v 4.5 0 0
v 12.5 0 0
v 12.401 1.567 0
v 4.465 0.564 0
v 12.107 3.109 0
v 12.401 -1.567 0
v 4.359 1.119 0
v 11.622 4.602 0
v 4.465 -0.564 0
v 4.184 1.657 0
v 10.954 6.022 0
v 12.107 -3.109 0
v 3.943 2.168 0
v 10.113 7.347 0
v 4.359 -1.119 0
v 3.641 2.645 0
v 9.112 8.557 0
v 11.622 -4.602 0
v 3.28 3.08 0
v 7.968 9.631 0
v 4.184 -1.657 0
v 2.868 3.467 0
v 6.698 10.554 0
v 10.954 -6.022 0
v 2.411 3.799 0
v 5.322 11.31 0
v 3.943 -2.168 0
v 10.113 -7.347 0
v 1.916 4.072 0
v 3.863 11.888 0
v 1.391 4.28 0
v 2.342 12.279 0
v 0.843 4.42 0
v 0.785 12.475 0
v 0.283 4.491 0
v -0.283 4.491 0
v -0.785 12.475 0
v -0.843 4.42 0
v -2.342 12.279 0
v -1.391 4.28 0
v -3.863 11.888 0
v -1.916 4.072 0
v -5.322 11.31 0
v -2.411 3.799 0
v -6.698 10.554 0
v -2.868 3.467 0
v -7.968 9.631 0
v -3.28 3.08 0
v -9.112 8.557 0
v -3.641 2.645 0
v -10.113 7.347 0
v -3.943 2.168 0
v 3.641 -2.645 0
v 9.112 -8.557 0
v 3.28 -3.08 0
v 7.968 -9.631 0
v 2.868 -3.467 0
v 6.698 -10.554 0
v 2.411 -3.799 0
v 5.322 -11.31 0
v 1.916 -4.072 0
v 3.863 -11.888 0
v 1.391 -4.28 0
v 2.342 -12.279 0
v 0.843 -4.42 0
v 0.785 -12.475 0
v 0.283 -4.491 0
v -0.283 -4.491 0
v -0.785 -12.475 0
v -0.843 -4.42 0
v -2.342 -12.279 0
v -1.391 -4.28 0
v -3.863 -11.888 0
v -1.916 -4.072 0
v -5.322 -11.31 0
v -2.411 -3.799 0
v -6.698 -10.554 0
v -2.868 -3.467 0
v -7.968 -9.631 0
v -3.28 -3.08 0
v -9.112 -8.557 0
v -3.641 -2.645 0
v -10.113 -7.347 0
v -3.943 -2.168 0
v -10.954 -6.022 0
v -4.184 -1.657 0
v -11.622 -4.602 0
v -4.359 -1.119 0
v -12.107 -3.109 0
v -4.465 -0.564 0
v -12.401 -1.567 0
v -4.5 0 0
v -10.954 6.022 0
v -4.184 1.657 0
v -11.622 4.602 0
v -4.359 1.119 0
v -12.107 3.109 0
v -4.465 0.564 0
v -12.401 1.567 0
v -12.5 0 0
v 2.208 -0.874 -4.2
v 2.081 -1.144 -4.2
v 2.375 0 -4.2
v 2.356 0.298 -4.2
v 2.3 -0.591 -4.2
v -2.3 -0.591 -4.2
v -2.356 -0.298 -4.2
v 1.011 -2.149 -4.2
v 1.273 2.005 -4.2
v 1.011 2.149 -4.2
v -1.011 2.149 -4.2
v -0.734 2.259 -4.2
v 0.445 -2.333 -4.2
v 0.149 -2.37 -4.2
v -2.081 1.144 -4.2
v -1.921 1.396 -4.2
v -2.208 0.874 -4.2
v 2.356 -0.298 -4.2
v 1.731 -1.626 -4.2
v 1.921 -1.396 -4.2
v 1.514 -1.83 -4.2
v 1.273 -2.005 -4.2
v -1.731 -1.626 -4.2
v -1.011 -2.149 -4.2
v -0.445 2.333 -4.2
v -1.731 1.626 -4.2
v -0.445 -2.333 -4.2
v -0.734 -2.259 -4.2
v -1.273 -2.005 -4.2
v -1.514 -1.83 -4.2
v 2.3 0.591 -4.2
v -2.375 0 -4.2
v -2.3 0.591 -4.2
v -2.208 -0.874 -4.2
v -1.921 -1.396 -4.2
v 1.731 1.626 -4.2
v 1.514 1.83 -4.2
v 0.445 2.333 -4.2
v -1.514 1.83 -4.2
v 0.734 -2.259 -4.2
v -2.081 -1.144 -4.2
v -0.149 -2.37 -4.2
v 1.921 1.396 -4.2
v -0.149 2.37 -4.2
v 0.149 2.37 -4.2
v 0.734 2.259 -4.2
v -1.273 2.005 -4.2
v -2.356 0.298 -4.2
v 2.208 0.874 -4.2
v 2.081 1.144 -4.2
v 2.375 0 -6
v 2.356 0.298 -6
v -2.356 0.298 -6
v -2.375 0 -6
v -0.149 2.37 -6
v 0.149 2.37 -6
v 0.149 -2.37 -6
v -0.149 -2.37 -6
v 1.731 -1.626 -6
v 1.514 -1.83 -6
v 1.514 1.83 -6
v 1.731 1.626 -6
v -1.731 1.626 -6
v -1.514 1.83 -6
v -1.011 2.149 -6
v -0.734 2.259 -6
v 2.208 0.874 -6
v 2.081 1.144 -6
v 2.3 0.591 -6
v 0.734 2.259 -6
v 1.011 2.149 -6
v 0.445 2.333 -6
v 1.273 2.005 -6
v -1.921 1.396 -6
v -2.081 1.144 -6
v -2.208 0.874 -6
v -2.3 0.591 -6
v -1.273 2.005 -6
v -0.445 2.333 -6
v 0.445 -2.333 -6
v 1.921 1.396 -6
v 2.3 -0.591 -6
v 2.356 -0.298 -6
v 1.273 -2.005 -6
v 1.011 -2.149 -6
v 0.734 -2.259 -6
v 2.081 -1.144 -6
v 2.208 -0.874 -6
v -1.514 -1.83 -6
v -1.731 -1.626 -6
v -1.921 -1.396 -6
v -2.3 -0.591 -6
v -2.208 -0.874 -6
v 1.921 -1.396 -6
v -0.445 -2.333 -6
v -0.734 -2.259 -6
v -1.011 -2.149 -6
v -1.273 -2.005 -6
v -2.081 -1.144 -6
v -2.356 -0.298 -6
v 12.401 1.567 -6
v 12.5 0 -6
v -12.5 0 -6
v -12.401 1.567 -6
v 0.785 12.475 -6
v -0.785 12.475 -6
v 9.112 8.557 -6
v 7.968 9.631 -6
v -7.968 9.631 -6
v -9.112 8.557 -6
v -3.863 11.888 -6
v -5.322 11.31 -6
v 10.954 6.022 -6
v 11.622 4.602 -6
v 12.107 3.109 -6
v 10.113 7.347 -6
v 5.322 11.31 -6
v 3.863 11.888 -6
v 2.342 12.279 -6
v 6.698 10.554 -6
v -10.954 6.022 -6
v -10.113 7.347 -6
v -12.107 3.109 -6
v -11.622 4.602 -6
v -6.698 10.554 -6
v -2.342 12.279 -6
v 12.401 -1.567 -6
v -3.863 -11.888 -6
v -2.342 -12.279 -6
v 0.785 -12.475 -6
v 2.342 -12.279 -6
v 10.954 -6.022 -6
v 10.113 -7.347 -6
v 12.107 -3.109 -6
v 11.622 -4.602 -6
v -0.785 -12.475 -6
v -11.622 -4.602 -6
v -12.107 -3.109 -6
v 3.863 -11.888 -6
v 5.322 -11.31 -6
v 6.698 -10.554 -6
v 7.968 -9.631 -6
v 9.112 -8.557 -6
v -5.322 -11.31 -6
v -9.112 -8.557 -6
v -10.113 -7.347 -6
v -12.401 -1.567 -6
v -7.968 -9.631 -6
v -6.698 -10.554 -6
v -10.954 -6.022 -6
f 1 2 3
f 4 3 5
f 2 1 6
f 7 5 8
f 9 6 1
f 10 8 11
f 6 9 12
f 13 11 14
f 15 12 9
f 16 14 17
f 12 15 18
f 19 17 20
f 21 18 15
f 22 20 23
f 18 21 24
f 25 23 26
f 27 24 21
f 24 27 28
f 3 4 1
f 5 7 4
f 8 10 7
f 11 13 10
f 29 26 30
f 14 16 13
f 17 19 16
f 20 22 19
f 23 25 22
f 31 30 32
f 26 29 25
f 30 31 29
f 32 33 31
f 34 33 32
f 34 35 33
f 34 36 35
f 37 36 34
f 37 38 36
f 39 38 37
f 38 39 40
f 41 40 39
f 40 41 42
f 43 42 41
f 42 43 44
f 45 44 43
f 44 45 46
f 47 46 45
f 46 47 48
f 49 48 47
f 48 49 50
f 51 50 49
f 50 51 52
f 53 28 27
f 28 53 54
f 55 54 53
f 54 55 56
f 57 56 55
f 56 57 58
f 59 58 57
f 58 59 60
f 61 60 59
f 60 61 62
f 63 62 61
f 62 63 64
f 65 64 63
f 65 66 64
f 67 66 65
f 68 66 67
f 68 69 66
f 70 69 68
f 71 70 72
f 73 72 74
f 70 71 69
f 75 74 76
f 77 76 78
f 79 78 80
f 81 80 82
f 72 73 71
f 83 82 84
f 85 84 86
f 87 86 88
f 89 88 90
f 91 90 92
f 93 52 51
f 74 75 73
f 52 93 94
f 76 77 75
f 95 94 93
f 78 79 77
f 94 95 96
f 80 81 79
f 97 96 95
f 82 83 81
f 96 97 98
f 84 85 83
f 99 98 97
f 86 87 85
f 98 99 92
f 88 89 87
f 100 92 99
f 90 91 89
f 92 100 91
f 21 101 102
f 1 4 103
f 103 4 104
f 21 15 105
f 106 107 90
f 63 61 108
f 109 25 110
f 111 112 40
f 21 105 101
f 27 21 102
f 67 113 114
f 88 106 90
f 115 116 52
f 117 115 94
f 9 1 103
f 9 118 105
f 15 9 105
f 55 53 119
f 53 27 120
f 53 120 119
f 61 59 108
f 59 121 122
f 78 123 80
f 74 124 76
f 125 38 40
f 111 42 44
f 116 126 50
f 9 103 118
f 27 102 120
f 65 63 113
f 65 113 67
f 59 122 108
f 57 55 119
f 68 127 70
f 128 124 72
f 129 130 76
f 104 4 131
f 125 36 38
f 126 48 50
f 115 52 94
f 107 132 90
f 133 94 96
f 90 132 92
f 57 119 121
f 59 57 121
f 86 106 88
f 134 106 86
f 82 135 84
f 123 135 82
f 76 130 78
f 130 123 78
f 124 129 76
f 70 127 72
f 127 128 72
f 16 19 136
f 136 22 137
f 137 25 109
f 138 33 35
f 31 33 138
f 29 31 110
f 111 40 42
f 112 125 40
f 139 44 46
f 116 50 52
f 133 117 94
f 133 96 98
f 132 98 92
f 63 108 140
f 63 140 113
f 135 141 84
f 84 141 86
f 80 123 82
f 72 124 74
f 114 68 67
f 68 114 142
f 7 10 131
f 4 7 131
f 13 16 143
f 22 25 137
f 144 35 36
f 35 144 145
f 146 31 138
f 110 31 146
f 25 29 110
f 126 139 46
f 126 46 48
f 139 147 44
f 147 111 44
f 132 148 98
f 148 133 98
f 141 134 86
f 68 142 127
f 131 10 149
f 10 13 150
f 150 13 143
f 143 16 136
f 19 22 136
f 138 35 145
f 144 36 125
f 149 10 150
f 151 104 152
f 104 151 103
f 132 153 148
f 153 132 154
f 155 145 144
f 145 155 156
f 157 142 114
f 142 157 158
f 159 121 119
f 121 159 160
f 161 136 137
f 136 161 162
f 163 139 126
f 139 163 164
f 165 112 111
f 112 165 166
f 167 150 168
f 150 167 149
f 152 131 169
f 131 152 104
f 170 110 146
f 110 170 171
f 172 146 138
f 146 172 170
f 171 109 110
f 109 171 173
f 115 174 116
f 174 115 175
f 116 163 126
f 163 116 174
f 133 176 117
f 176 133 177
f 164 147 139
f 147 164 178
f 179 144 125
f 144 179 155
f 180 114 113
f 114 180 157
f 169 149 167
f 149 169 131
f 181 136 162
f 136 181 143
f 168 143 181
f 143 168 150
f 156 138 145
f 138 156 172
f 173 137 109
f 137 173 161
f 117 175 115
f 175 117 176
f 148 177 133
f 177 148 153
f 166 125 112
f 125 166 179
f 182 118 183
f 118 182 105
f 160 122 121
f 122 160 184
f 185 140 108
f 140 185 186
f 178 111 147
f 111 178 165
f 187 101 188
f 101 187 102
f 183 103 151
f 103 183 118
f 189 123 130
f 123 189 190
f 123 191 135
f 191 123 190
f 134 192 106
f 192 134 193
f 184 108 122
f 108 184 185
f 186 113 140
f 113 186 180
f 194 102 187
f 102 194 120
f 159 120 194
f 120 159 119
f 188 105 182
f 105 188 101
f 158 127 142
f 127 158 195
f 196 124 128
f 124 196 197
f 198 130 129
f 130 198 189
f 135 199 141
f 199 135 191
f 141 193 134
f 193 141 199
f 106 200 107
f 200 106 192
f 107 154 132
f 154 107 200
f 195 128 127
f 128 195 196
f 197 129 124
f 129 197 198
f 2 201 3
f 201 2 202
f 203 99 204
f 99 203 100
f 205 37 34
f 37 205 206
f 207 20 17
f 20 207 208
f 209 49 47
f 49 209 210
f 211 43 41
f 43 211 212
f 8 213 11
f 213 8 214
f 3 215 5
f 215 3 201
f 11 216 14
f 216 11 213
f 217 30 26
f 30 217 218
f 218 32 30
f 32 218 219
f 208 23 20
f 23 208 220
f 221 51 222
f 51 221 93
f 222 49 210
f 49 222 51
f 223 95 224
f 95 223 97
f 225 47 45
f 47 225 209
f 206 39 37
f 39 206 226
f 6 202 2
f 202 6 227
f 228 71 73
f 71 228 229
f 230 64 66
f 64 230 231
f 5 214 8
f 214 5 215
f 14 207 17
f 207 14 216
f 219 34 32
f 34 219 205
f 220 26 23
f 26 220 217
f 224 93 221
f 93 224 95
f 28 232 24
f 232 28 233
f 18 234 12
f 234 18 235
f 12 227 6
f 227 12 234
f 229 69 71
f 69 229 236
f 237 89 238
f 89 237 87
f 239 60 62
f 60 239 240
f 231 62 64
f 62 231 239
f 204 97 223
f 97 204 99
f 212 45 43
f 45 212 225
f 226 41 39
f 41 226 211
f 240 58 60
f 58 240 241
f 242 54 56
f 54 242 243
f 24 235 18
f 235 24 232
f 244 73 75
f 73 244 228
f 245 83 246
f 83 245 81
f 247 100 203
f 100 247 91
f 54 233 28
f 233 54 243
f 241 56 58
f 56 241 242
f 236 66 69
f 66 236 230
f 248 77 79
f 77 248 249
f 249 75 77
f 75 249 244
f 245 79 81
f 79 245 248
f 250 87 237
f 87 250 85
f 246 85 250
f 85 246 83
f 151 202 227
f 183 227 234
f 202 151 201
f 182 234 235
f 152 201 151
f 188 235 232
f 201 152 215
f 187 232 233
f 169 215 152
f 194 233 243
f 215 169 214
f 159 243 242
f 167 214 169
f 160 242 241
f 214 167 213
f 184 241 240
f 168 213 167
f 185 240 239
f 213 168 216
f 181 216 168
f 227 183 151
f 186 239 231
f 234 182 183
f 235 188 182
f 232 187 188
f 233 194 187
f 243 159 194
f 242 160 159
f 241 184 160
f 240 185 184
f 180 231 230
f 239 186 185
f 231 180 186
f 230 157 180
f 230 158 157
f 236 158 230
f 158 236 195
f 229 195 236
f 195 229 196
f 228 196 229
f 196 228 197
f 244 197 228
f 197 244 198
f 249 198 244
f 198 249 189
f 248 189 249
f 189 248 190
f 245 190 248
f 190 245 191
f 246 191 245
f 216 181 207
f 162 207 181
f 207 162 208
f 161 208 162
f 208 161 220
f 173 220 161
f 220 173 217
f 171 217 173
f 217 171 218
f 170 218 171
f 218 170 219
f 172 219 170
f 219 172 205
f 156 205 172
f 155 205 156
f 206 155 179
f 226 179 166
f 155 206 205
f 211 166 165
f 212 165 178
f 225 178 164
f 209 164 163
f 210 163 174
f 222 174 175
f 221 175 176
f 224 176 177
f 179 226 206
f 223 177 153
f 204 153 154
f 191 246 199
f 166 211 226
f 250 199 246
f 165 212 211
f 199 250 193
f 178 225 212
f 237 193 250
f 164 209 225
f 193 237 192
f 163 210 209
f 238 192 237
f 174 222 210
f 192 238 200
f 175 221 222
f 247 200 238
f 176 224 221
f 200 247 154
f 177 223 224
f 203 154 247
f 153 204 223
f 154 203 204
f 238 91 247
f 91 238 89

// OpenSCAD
$fn = 50;


difference() {
	union() {
		translate(v = [0, 0, -6.0000000000]) {
			cylinder(h = 6, r = 12.5000000000);
		}
	}
	union() {
		translate(v = [0, 0, 0]) {
			rotate(a = [0, 0, 0]) {
				difference() {
					union() {
						translate(v = [0, 0, -9.0000000000]) {
							cylinder(h = 9, r = 2.2500000000);
						}
						translate(v = [0, 0, -4.2000000000]) {
							cylinder(h = 4.2000000000, r1 = 2.3750000000, r2 = 4.5000000000);
						}
						translate(v = [0, 0, -9.0000000000]) {
							cylinder(h = 9, r = 2.3750000000);
						}
						translate(v = [0, 0, -9.0000000000]) {
							cylinder(h = 9, r = 2.2500000000);
						}
					}
					union();
				}
			}
		}
	}
}
